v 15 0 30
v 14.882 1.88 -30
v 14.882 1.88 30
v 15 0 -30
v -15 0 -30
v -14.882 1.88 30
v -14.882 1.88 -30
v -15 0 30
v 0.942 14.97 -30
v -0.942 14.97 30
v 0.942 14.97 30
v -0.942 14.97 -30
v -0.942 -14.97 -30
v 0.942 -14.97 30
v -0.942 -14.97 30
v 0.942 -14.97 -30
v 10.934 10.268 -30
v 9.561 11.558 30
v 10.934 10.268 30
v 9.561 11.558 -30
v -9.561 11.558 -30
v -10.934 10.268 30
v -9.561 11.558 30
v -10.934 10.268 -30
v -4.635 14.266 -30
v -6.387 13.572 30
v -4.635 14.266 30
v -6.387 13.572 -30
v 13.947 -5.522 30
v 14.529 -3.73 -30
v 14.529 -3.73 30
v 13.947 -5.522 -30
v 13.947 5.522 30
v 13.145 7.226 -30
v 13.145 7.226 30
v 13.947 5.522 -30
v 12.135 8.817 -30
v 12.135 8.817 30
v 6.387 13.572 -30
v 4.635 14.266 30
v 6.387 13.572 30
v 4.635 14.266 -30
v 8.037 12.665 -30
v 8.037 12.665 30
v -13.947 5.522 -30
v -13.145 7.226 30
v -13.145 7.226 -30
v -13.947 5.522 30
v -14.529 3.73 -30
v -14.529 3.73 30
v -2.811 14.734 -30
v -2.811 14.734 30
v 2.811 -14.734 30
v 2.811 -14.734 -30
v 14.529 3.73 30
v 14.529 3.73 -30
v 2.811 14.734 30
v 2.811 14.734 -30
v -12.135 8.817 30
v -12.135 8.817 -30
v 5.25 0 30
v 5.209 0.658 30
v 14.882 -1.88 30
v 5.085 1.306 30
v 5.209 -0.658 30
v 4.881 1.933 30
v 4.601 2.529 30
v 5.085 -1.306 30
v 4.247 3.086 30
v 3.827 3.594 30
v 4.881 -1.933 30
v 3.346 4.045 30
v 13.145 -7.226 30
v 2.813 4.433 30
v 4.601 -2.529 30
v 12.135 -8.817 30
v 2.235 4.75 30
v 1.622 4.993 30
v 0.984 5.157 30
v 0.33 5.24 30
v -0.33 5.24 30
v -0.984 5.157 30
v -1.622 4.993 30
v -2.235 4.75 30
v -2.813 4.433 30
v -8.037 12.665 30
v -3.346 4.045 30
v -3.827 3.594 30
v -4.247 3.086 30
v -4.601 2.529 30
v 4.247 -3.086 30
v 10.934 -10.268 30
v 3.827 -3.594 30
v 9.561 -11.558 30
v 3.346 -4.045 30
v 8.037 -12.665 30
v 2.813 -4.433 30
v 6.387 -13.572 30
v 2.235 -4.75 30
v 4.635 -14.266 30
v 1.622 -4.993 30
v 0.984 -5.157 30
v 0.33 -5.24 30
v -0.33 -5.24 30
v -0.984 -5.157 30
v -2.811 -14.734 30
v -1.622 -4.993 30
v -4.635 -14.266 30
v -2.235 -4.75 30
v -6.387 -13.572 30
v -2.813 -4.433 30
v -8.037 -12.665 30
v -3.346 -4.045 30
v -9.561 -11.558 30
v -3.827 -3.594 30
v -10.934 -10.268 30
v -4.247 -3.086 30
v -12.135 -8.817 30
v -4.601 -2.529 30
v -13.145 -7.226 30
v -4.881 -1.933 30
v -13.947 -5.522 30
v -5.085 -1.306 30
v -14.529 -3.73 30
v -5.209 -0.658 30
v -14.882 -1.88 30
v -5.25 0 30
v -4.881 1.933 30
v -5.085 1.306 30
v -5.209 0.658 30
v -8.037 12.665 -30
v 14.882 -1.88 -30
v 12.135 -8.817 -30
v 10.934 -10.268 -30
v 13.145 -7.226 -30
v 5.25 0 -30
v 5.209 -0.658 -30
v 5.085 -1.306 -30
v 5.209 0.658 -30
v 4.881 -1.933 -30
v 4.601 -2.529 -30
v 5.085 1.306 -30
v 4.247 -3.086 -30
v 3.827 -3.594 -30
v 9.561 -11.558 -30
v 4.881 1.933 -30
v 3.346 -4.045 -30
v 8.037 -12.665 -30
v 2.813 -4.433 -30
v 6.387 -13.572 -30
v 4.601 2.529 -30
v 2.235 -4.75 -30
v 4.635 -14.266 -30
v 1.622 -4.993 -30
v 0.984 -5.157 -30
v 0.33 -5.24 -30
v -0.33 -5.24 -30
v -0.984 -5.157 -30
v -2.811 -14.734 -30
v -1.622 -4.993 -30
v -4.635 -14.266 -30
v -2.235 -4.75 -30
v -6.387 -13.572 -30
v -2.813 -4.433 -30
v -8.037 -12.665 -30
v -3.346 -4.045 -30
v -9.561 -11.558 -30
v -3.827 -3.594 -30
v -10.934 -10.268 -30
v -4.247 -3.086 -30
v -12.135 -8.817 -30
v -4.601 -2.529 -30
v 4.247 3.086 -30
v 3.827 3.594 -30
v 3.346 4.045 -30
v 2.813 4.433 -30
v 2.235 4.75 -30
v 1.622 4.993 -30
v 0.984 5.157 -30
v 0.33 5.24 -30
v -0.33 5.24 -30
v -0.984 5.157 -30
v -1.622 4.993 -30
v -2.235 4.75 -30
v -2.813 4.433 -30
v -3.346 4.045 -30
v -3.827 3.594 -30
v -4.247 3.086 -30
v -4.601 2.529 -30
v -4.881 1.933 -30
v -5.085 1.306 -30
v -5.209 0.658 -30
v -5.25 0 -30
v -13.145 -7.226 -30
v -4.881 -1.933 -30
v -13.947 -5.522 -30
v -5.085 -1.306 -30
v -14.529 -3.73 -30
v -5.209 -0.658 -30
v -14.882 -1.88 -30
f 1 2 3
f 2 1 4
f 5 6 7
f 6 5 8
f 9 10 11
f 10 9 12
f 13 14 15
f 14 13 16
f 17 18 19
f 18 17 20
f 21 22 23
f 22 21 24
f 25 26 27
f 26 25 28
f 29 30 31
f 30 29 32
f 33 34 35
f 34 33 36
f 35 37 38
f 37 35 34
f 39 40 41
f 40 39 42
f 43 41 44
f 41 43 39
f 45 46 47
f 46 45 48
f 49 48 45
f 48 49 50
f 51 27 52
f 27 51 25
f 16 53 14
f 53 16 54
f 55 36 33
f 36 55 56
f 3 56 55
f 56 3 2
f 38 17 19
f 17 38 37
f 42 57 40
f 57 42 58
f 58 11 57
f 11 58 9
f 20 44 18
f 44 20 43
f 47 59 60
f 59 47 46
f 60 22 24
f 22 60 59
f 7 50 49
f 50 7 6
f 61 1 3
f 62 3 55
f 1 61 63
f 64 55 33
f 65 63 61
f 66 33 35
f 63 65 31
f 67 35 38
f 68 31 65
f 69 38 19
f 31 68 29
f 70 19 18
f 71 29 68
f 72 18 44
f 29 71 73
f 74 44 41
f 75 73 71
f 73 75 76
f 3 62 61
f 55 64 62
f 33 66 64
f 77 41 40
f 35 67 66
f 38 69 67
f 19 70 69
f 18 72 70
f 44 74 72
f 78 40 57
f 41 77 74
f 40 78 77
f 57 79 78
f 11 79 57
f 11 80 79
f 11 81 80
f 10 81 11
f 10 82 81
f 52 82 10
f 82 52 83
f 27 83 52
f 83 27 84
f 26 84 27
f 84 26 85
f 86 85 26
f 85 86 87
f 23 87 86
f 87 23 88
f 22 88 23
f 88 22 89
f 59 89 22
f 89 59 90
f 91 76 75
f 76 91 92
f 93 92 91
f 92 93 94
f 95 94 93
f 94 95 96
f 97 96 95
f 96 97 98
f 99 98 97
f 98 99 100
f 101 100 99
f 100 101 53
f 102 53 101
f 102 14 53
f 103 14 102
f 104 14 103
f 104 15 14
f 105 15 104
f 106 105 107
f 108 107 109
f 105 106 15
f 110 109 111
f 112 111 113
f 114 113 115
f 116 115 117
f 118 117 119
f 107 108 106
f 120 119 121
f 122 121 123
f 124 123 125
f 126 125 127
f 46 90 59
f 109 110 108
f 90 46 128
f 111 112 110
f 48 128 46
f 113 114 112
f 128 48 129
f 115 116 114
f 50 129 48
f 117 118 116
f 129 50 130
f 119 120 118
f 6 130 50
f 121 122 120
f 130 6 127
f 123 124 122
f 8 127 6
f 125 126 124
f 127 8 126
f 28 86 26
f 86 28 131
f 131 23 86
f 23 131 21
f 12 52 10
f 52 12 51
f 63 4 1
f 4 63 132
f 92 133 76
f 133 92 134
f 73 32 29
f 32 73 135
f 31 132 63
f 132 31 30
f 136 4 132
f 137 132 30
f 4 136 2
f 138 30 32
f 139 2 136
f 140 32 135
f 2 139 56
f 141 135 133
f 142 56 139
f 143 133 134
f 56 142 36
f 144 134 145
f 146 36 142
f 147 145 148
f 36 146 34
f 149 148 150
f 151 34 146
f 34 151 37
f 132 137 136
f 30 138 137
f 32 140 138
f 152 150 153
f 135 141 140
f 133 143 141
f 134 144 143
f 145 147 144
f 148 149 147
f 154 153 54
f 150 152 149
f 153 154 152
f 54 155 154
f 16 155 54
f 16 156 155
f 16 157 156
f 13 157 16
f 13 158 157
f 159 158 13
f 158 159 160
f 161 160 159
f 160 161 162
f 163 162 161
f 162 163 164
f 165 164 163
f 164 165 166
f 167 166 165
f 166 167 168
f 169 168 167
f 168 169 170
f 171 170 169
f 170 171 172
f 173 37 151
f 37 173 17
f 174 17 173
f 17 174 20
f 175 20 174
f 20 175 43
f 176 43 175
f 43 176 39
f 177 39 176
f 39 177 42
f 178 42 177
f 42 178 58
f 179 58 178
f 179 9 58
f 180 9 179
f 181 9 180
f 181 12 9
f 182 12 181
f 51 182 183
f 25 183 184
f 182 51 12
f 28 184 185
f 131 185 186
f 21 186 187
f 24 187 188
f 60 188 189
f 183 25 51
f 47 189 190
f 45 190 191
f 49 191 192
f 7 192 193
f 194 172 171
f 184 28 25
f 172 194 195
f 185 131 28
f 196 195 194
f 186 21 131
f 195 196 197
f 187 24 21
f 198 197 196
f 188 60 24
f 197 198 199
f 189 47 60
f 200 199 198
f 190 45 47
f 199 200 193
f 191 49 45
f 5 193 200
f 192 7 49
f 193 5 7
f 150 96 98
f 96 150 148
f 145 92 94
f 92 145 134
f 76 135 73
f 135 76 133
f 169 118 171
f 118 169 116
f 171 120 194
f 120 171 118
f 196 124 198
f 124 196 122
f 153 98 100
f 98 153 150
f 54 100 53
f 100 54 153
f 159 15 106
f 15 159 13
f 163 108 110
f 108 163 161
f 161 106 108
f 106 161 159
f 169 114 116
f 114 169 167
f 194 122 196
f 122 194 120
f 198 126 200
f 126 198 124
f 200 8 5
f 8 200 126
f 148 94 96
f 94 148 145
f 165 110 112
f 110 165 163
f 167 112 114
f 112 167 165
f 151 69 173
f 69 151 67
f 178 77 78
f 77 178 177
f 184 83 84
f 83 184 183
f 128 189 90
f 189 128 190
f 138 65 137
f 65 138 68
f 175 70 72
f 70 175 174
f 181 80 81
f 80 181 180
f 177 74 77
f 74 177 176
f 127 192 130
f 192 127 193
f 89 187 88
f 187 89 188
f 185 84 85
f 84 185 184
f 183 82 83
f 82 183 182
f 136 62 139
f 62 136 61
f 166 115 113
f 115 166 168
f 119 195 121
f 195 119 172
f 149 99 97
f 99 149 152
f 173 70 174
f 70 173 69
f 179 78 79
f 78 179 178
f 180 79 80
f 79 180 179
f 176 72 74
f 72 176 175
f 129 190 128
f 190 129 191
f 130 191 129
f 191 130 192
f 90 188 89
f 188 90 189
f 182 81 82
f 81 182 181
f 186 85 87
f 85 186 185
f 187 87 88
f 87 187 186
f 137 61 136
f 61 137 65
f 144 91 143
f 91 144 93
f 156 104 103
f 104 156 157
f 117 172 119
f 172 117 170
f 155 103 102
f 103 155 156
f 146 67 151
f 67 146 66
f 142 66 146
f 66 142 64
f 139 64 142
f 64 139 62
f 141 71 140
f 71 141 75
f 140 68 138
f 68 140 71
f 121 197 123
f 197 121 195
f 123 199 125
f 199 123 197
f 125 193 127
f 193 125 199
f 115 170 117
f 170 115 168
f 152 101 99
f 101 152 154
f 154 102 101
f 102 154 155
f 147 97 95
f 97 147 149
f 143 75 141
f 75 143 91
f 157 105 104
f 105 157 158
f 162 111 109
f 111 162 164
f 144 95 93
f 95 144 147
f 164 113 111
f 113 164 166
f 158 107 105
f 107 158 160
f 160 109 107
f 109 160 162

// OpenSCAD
$fn = 50;


difference() {
	union() {
		translate(v = [0, 0, -30.0000000000]) {
			cylinder(h = 60, r = 15.0000000000);
		}
	}
	union() {
		translate(v = [0, 0, -100.0000000000]) {
			cylinder(h = 200, r = 5.2500000000);
		}
	}
}
